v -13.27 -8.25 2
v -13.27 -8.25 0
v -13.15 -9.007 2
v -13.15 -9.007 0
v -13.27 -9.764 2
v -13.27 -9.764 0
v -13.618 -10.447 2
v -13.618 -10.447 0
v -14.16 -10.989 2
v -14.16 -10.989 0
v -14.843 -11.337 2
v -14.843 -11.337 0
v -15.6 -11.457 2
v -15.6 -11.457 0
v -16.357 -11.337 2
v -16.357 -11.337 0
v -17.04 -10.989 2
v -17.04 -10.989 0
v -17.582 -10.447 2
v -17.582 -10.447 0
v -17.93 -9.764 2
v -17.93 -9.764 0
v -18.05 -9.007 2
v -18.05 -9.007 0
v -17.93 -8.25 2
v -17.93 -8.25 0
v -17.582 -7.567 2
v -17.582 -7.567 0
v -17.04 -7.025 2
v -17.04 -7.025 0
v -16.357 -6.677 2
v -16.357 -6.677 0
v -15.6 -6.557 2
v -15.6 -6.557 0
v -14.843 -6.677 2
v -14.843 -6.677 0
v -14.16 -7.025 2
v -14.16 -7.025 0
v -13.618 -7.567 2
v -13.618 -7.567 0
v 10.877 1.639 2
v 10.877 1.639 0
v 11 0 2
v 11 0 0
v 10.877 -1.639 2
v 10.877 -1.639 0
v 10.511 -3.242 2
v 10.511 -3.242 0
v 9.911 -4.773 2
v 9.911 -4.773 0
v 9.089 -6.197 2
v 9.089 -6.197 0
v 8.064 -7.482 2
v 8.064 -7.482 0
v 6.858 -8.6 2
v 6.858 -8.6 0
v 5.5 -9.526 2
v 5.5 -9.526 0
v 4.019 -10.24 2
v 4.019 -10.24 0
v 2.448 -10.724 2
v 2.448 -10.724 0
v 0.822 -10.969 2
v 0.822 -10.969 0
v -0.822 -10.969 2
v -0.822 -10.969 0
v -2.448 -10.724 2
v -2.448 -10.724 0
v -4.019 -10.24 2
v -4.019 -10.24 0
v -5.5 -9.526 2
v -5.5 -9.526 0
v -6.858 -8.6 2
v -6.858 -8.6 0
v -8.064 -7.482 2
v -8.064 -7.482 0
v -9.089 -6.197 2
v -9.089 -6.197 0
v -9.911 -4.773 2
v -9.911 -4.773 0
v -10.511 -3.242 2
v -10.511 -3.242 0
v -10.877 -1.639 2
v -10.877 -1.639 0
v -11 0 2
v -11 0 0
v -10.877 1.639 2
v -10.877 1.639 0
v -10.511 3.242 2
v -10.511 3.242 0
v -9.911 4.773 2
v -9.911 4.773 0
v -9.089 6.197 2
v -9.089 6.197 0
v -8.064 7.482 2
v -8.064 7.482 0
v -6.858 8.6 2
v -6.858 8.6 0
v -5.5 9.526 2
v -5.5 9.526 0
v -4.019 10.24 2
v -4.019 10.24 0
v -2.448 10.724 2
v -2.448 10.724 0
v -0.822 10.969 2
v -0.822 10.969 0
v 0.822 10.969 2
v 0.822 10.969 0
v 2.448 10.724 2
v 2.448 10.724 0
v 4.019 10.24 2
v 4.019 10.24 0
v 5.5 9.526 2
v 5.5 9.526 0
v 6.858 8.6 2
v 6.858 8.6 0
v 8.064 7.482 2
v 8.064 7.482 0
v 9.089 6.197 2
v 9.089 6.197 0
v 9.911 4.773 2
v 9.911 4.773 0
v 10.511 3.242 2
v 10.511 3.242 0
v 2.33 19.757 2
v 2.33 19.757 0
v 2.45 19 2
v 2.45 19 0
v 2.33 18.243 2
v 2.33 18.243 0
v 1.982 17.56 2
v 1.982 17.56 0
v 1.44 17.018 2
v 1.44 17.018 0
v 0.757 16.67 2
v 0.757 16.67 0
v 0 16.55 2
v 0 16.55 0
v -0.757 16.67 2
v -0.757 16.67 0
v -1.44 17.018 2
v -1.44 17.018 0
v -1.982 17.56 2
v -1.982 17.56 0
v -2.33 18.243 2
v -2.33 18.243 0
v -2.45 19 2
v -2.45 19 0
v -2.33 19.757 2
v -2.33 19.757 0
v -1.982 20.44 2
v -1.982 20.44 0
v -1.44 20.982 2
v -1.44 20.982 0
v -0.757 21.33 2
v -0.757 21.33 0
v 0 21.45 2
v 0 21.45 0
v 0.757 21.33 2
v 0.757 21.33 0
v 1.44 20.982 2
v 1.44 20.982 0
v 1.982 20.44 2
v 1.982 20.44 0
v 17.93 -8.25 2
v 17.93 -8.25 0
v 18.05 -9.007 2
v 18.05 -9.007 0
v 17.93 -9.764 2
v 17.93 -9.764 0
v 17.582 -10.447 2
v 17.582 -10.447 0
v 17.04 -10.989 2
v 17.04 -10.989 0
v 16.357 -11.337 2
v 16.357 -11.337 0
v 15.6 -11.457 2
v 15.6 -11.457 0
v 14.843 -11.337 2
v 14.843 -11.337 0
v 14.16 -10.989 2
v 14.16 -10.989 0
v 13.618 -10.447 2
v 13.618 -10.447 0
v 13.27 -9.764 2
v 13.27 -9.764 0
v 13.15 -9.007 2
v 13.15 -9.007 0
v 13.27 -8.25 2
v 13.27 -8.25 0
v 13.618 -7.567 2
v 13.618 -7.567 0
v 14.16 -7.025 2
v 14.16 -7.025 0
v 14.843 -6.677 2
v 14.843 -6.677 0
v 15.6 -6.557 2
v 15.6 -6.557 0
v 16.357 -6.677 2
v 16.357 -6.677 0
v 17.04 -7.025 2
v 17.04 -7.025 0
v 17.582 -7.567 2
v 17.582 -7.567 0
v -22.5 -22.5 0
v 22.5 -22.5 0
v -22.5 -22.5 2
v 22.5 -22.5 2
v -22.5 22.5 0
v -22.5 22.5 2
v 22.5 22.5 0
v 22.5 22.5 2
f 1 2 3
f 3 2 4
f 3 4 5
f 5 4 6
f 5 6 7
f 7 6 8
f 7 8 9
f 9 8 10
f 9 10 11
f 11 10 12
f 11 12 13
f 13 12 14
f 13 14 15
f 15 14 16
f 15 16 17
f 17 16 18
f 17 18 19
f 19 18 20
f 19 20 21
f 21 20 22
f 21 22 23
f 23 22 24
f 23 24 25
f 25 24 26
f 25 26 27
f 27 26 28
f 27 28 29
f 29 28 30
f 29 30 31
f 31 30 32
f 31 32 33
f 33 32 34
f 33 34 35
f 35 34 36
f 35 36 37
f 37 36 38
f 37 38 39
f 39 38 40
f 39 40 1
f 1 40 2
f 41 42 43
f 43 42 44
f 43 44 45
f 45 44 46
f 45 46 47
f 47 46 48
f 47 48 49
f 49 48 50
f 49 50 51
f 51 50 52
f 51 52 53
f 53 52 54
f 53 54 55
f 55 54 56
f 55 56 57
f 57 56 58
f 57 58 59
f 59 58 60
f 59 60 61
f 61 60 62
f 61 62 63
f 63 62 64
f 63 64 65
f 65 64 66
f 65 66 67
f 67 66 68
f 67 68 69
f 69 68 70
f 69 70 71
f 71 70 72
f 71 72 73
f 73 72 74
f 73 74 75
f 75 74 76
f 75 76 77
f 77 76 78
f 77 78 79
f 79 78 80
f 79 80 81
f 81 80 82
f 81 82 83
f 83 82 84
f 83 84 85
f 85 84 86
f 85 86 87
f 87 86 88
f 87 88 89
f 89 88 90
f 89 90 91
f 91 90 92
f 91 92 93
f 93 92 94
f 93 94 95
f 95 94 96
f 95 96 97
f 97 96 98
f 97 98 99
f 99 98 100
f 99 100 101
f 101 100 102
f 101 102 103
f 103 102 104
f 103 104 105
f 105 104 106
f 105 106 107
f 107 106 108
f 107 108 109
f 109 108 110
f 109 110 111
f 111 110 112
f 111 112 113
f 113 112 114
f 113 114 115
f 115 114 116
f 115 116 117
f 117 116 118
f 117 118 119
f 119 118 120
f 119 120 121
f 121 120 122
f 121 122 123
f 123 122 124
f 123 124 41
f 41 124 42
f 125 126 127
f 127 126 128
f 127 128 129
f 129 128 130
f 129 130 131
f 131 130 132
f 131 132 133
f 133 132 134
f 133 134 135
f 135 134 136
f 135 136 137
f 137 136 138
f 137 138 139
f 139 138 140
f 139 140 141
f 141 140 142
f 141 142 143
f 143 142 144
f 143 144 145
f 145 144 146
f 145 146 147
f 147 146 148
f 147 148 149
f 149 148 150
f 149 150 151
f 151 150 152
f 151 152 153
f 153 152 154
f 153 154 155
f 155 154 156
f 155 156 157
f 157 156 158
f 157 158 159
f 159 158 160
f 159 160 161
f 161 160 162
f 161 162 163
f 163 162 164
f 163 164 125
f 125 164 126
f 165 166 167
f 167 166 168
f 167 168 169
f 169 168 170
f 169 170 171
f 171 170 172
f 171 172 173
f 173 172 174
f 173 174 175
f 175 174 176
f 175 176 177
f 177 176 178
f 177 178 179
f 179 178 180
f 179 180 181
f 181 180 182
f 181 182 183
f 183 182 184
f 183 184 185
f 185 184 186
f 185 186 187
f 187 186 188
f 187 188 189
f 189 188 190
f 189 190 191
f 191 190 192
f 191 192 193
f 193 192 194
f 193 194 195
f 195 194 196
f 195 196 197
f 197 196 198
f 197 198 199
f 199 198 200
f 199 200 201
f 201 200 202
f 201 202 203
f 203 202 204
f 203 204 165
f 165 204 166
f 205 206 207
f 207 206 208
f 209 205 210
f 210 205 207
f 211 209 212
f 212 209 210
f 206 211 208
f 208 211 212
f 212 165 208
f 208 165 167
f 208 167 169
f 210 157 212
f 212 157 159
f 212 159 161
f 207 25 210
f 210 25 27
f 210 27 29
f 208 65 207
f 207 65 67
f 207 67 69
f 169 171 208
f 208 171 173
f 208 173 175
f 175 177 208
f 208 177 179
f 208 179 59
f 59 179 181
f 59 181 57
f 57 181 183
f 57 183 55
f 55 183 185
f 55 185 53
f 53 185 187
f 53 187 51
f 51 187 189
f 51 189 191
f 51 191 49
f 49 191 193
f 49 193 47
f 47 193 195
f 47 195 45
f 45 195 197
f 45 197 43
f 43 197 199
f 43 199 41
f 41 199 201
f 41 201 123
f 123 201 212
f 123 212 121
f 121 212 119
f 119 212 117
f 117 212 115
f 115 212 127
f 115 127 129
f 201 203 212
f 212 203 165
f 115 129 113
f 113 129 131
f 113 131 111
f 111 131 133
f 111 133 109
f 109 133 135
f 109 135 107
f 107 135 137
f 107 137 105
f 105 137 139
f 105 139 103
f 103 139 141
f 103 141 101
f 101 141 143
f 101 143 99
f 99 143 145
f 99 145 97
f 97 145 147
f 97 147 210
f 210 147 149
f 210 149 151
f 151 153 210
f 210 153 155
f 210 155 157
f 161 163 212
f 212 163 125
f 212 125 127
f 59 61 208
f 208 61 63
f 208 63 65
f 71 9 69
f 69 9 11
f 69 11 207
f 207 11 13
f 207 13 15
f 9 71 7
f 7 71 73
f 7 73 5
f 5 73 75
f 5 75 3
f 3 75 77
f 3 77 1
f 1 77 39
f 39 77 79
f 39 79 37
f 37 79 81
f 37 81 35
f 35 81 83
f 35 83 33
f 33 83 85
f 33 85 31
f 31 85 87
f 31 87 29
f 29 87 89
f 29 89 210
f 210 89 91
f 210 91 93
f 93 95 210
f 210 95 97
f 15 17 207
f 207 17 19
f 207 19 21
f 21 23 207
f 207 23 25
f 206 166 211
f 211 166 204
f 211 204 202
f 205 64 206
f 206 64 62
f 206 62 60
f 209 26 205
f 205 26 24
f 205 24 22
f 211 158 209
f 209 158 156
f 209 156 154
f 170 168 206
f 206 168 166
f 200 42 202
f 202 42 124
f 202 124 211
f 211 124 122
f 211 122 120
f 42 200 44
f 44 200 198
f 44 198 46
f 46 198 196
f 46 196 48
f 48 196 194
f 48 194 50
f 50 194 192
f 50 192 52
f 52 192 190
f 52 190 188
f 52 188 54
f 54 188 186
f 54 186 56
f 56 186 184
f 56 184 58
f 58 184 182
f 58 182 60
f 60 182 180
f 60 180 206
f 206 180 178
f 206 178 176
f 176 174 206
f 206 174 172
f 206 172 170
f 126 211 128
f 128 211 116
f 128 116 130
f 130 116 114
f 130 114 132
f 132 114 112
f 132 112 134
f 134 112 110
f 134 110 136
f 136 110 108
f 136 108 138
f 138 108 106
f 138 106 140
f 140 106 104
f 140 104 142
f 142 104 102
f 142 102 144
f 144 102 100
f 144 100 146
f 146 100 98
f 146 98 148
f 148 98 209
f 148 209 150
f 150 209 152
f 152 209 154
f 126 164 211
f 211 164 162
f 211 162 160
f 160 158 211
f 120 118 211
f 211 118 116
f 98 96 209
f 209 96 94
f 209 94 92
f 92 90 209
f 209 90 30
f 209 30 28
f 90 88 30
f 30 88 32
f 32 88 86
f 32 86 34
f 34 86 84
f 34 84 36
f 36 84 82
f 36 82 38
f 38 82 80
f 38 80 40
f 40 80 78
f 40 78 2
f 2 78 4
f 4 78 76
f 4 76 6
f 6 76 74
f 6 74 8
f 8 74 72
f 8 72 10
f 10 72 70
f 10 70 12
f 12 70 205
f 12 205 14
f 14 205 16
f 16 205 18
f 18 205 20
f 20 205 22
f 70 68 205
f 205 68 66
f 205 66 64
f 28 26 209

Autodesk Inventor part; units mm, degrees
ref_plane "YZ Plane" through (0, 0, 0) normal (1, 0, 0) x (0, 1, 0)
ref_plane "XZ Plane" through (0, 0, 0) normal (0, 1, 0) x (-1, 0, 0)
ref_plane "XY Plane" through (0, 0, 0) normal (0, 0, 1) x (1, 0, 0)
sketch "Sketch1" plane through (0, 0, 0) normal (0, 0, 1) x (1, 0, 0)
  line L0 (-22.5, -22.5) -> (22.5, -22.5)
  line L1 (22.5, -22.5) -> (22.5, 22.5)
  line L2 (22.5, 22.5) -> (-22.5, 22.5)
  line L3 (-22.5, 22.5) -> (-22.5, -22.5)
  line L4 (-22.5, -22.5) -> (22.5, 22.5) construction
  line L5 (22.5, -22.5) -> (-22.5, 22.5) construction
  circle A0 centre (0, 0) radius 11
  line L6 (0, 0) -> (0, 19)
  line L7 (0, 0) -> (15.6, -9.0067)
  line L8 (0, 0) -> (-15.6, -9.0067)
  circle A1 centre (0, 19) radius 2.45
  circle A2 centre (15.6, -9.0067) radius 2.45
  circle A3 centre (-15.6, -9.0067) radius 2.45
  point P0 (22.5, -11.0947)
  point P1 (-22.5, -11.0947)
  dimension "d0" = 45
  dimension "d1" = 45
  dimension "d2" = 22
  dimension "d3" = 19
  dimension "d4" = 15.6
  dimension "d5" = 120
  dimension "d6" = 15.6
  dimension "d7" = 120
  dimension "d8" = 4.9
  dimension "d9" = 4.9
  dimension "d10" = 4.9
extrude "Extrusion2" add sketch "Sketch1" along normal blind 2
equation "\"d1\" = d0"
equation "\"d4\" = d6"
equation "\"d7\" = d5"
equation "\"d9\" = d8"
equation "\"d10\" = d8"
properties part number "mount_v06"
